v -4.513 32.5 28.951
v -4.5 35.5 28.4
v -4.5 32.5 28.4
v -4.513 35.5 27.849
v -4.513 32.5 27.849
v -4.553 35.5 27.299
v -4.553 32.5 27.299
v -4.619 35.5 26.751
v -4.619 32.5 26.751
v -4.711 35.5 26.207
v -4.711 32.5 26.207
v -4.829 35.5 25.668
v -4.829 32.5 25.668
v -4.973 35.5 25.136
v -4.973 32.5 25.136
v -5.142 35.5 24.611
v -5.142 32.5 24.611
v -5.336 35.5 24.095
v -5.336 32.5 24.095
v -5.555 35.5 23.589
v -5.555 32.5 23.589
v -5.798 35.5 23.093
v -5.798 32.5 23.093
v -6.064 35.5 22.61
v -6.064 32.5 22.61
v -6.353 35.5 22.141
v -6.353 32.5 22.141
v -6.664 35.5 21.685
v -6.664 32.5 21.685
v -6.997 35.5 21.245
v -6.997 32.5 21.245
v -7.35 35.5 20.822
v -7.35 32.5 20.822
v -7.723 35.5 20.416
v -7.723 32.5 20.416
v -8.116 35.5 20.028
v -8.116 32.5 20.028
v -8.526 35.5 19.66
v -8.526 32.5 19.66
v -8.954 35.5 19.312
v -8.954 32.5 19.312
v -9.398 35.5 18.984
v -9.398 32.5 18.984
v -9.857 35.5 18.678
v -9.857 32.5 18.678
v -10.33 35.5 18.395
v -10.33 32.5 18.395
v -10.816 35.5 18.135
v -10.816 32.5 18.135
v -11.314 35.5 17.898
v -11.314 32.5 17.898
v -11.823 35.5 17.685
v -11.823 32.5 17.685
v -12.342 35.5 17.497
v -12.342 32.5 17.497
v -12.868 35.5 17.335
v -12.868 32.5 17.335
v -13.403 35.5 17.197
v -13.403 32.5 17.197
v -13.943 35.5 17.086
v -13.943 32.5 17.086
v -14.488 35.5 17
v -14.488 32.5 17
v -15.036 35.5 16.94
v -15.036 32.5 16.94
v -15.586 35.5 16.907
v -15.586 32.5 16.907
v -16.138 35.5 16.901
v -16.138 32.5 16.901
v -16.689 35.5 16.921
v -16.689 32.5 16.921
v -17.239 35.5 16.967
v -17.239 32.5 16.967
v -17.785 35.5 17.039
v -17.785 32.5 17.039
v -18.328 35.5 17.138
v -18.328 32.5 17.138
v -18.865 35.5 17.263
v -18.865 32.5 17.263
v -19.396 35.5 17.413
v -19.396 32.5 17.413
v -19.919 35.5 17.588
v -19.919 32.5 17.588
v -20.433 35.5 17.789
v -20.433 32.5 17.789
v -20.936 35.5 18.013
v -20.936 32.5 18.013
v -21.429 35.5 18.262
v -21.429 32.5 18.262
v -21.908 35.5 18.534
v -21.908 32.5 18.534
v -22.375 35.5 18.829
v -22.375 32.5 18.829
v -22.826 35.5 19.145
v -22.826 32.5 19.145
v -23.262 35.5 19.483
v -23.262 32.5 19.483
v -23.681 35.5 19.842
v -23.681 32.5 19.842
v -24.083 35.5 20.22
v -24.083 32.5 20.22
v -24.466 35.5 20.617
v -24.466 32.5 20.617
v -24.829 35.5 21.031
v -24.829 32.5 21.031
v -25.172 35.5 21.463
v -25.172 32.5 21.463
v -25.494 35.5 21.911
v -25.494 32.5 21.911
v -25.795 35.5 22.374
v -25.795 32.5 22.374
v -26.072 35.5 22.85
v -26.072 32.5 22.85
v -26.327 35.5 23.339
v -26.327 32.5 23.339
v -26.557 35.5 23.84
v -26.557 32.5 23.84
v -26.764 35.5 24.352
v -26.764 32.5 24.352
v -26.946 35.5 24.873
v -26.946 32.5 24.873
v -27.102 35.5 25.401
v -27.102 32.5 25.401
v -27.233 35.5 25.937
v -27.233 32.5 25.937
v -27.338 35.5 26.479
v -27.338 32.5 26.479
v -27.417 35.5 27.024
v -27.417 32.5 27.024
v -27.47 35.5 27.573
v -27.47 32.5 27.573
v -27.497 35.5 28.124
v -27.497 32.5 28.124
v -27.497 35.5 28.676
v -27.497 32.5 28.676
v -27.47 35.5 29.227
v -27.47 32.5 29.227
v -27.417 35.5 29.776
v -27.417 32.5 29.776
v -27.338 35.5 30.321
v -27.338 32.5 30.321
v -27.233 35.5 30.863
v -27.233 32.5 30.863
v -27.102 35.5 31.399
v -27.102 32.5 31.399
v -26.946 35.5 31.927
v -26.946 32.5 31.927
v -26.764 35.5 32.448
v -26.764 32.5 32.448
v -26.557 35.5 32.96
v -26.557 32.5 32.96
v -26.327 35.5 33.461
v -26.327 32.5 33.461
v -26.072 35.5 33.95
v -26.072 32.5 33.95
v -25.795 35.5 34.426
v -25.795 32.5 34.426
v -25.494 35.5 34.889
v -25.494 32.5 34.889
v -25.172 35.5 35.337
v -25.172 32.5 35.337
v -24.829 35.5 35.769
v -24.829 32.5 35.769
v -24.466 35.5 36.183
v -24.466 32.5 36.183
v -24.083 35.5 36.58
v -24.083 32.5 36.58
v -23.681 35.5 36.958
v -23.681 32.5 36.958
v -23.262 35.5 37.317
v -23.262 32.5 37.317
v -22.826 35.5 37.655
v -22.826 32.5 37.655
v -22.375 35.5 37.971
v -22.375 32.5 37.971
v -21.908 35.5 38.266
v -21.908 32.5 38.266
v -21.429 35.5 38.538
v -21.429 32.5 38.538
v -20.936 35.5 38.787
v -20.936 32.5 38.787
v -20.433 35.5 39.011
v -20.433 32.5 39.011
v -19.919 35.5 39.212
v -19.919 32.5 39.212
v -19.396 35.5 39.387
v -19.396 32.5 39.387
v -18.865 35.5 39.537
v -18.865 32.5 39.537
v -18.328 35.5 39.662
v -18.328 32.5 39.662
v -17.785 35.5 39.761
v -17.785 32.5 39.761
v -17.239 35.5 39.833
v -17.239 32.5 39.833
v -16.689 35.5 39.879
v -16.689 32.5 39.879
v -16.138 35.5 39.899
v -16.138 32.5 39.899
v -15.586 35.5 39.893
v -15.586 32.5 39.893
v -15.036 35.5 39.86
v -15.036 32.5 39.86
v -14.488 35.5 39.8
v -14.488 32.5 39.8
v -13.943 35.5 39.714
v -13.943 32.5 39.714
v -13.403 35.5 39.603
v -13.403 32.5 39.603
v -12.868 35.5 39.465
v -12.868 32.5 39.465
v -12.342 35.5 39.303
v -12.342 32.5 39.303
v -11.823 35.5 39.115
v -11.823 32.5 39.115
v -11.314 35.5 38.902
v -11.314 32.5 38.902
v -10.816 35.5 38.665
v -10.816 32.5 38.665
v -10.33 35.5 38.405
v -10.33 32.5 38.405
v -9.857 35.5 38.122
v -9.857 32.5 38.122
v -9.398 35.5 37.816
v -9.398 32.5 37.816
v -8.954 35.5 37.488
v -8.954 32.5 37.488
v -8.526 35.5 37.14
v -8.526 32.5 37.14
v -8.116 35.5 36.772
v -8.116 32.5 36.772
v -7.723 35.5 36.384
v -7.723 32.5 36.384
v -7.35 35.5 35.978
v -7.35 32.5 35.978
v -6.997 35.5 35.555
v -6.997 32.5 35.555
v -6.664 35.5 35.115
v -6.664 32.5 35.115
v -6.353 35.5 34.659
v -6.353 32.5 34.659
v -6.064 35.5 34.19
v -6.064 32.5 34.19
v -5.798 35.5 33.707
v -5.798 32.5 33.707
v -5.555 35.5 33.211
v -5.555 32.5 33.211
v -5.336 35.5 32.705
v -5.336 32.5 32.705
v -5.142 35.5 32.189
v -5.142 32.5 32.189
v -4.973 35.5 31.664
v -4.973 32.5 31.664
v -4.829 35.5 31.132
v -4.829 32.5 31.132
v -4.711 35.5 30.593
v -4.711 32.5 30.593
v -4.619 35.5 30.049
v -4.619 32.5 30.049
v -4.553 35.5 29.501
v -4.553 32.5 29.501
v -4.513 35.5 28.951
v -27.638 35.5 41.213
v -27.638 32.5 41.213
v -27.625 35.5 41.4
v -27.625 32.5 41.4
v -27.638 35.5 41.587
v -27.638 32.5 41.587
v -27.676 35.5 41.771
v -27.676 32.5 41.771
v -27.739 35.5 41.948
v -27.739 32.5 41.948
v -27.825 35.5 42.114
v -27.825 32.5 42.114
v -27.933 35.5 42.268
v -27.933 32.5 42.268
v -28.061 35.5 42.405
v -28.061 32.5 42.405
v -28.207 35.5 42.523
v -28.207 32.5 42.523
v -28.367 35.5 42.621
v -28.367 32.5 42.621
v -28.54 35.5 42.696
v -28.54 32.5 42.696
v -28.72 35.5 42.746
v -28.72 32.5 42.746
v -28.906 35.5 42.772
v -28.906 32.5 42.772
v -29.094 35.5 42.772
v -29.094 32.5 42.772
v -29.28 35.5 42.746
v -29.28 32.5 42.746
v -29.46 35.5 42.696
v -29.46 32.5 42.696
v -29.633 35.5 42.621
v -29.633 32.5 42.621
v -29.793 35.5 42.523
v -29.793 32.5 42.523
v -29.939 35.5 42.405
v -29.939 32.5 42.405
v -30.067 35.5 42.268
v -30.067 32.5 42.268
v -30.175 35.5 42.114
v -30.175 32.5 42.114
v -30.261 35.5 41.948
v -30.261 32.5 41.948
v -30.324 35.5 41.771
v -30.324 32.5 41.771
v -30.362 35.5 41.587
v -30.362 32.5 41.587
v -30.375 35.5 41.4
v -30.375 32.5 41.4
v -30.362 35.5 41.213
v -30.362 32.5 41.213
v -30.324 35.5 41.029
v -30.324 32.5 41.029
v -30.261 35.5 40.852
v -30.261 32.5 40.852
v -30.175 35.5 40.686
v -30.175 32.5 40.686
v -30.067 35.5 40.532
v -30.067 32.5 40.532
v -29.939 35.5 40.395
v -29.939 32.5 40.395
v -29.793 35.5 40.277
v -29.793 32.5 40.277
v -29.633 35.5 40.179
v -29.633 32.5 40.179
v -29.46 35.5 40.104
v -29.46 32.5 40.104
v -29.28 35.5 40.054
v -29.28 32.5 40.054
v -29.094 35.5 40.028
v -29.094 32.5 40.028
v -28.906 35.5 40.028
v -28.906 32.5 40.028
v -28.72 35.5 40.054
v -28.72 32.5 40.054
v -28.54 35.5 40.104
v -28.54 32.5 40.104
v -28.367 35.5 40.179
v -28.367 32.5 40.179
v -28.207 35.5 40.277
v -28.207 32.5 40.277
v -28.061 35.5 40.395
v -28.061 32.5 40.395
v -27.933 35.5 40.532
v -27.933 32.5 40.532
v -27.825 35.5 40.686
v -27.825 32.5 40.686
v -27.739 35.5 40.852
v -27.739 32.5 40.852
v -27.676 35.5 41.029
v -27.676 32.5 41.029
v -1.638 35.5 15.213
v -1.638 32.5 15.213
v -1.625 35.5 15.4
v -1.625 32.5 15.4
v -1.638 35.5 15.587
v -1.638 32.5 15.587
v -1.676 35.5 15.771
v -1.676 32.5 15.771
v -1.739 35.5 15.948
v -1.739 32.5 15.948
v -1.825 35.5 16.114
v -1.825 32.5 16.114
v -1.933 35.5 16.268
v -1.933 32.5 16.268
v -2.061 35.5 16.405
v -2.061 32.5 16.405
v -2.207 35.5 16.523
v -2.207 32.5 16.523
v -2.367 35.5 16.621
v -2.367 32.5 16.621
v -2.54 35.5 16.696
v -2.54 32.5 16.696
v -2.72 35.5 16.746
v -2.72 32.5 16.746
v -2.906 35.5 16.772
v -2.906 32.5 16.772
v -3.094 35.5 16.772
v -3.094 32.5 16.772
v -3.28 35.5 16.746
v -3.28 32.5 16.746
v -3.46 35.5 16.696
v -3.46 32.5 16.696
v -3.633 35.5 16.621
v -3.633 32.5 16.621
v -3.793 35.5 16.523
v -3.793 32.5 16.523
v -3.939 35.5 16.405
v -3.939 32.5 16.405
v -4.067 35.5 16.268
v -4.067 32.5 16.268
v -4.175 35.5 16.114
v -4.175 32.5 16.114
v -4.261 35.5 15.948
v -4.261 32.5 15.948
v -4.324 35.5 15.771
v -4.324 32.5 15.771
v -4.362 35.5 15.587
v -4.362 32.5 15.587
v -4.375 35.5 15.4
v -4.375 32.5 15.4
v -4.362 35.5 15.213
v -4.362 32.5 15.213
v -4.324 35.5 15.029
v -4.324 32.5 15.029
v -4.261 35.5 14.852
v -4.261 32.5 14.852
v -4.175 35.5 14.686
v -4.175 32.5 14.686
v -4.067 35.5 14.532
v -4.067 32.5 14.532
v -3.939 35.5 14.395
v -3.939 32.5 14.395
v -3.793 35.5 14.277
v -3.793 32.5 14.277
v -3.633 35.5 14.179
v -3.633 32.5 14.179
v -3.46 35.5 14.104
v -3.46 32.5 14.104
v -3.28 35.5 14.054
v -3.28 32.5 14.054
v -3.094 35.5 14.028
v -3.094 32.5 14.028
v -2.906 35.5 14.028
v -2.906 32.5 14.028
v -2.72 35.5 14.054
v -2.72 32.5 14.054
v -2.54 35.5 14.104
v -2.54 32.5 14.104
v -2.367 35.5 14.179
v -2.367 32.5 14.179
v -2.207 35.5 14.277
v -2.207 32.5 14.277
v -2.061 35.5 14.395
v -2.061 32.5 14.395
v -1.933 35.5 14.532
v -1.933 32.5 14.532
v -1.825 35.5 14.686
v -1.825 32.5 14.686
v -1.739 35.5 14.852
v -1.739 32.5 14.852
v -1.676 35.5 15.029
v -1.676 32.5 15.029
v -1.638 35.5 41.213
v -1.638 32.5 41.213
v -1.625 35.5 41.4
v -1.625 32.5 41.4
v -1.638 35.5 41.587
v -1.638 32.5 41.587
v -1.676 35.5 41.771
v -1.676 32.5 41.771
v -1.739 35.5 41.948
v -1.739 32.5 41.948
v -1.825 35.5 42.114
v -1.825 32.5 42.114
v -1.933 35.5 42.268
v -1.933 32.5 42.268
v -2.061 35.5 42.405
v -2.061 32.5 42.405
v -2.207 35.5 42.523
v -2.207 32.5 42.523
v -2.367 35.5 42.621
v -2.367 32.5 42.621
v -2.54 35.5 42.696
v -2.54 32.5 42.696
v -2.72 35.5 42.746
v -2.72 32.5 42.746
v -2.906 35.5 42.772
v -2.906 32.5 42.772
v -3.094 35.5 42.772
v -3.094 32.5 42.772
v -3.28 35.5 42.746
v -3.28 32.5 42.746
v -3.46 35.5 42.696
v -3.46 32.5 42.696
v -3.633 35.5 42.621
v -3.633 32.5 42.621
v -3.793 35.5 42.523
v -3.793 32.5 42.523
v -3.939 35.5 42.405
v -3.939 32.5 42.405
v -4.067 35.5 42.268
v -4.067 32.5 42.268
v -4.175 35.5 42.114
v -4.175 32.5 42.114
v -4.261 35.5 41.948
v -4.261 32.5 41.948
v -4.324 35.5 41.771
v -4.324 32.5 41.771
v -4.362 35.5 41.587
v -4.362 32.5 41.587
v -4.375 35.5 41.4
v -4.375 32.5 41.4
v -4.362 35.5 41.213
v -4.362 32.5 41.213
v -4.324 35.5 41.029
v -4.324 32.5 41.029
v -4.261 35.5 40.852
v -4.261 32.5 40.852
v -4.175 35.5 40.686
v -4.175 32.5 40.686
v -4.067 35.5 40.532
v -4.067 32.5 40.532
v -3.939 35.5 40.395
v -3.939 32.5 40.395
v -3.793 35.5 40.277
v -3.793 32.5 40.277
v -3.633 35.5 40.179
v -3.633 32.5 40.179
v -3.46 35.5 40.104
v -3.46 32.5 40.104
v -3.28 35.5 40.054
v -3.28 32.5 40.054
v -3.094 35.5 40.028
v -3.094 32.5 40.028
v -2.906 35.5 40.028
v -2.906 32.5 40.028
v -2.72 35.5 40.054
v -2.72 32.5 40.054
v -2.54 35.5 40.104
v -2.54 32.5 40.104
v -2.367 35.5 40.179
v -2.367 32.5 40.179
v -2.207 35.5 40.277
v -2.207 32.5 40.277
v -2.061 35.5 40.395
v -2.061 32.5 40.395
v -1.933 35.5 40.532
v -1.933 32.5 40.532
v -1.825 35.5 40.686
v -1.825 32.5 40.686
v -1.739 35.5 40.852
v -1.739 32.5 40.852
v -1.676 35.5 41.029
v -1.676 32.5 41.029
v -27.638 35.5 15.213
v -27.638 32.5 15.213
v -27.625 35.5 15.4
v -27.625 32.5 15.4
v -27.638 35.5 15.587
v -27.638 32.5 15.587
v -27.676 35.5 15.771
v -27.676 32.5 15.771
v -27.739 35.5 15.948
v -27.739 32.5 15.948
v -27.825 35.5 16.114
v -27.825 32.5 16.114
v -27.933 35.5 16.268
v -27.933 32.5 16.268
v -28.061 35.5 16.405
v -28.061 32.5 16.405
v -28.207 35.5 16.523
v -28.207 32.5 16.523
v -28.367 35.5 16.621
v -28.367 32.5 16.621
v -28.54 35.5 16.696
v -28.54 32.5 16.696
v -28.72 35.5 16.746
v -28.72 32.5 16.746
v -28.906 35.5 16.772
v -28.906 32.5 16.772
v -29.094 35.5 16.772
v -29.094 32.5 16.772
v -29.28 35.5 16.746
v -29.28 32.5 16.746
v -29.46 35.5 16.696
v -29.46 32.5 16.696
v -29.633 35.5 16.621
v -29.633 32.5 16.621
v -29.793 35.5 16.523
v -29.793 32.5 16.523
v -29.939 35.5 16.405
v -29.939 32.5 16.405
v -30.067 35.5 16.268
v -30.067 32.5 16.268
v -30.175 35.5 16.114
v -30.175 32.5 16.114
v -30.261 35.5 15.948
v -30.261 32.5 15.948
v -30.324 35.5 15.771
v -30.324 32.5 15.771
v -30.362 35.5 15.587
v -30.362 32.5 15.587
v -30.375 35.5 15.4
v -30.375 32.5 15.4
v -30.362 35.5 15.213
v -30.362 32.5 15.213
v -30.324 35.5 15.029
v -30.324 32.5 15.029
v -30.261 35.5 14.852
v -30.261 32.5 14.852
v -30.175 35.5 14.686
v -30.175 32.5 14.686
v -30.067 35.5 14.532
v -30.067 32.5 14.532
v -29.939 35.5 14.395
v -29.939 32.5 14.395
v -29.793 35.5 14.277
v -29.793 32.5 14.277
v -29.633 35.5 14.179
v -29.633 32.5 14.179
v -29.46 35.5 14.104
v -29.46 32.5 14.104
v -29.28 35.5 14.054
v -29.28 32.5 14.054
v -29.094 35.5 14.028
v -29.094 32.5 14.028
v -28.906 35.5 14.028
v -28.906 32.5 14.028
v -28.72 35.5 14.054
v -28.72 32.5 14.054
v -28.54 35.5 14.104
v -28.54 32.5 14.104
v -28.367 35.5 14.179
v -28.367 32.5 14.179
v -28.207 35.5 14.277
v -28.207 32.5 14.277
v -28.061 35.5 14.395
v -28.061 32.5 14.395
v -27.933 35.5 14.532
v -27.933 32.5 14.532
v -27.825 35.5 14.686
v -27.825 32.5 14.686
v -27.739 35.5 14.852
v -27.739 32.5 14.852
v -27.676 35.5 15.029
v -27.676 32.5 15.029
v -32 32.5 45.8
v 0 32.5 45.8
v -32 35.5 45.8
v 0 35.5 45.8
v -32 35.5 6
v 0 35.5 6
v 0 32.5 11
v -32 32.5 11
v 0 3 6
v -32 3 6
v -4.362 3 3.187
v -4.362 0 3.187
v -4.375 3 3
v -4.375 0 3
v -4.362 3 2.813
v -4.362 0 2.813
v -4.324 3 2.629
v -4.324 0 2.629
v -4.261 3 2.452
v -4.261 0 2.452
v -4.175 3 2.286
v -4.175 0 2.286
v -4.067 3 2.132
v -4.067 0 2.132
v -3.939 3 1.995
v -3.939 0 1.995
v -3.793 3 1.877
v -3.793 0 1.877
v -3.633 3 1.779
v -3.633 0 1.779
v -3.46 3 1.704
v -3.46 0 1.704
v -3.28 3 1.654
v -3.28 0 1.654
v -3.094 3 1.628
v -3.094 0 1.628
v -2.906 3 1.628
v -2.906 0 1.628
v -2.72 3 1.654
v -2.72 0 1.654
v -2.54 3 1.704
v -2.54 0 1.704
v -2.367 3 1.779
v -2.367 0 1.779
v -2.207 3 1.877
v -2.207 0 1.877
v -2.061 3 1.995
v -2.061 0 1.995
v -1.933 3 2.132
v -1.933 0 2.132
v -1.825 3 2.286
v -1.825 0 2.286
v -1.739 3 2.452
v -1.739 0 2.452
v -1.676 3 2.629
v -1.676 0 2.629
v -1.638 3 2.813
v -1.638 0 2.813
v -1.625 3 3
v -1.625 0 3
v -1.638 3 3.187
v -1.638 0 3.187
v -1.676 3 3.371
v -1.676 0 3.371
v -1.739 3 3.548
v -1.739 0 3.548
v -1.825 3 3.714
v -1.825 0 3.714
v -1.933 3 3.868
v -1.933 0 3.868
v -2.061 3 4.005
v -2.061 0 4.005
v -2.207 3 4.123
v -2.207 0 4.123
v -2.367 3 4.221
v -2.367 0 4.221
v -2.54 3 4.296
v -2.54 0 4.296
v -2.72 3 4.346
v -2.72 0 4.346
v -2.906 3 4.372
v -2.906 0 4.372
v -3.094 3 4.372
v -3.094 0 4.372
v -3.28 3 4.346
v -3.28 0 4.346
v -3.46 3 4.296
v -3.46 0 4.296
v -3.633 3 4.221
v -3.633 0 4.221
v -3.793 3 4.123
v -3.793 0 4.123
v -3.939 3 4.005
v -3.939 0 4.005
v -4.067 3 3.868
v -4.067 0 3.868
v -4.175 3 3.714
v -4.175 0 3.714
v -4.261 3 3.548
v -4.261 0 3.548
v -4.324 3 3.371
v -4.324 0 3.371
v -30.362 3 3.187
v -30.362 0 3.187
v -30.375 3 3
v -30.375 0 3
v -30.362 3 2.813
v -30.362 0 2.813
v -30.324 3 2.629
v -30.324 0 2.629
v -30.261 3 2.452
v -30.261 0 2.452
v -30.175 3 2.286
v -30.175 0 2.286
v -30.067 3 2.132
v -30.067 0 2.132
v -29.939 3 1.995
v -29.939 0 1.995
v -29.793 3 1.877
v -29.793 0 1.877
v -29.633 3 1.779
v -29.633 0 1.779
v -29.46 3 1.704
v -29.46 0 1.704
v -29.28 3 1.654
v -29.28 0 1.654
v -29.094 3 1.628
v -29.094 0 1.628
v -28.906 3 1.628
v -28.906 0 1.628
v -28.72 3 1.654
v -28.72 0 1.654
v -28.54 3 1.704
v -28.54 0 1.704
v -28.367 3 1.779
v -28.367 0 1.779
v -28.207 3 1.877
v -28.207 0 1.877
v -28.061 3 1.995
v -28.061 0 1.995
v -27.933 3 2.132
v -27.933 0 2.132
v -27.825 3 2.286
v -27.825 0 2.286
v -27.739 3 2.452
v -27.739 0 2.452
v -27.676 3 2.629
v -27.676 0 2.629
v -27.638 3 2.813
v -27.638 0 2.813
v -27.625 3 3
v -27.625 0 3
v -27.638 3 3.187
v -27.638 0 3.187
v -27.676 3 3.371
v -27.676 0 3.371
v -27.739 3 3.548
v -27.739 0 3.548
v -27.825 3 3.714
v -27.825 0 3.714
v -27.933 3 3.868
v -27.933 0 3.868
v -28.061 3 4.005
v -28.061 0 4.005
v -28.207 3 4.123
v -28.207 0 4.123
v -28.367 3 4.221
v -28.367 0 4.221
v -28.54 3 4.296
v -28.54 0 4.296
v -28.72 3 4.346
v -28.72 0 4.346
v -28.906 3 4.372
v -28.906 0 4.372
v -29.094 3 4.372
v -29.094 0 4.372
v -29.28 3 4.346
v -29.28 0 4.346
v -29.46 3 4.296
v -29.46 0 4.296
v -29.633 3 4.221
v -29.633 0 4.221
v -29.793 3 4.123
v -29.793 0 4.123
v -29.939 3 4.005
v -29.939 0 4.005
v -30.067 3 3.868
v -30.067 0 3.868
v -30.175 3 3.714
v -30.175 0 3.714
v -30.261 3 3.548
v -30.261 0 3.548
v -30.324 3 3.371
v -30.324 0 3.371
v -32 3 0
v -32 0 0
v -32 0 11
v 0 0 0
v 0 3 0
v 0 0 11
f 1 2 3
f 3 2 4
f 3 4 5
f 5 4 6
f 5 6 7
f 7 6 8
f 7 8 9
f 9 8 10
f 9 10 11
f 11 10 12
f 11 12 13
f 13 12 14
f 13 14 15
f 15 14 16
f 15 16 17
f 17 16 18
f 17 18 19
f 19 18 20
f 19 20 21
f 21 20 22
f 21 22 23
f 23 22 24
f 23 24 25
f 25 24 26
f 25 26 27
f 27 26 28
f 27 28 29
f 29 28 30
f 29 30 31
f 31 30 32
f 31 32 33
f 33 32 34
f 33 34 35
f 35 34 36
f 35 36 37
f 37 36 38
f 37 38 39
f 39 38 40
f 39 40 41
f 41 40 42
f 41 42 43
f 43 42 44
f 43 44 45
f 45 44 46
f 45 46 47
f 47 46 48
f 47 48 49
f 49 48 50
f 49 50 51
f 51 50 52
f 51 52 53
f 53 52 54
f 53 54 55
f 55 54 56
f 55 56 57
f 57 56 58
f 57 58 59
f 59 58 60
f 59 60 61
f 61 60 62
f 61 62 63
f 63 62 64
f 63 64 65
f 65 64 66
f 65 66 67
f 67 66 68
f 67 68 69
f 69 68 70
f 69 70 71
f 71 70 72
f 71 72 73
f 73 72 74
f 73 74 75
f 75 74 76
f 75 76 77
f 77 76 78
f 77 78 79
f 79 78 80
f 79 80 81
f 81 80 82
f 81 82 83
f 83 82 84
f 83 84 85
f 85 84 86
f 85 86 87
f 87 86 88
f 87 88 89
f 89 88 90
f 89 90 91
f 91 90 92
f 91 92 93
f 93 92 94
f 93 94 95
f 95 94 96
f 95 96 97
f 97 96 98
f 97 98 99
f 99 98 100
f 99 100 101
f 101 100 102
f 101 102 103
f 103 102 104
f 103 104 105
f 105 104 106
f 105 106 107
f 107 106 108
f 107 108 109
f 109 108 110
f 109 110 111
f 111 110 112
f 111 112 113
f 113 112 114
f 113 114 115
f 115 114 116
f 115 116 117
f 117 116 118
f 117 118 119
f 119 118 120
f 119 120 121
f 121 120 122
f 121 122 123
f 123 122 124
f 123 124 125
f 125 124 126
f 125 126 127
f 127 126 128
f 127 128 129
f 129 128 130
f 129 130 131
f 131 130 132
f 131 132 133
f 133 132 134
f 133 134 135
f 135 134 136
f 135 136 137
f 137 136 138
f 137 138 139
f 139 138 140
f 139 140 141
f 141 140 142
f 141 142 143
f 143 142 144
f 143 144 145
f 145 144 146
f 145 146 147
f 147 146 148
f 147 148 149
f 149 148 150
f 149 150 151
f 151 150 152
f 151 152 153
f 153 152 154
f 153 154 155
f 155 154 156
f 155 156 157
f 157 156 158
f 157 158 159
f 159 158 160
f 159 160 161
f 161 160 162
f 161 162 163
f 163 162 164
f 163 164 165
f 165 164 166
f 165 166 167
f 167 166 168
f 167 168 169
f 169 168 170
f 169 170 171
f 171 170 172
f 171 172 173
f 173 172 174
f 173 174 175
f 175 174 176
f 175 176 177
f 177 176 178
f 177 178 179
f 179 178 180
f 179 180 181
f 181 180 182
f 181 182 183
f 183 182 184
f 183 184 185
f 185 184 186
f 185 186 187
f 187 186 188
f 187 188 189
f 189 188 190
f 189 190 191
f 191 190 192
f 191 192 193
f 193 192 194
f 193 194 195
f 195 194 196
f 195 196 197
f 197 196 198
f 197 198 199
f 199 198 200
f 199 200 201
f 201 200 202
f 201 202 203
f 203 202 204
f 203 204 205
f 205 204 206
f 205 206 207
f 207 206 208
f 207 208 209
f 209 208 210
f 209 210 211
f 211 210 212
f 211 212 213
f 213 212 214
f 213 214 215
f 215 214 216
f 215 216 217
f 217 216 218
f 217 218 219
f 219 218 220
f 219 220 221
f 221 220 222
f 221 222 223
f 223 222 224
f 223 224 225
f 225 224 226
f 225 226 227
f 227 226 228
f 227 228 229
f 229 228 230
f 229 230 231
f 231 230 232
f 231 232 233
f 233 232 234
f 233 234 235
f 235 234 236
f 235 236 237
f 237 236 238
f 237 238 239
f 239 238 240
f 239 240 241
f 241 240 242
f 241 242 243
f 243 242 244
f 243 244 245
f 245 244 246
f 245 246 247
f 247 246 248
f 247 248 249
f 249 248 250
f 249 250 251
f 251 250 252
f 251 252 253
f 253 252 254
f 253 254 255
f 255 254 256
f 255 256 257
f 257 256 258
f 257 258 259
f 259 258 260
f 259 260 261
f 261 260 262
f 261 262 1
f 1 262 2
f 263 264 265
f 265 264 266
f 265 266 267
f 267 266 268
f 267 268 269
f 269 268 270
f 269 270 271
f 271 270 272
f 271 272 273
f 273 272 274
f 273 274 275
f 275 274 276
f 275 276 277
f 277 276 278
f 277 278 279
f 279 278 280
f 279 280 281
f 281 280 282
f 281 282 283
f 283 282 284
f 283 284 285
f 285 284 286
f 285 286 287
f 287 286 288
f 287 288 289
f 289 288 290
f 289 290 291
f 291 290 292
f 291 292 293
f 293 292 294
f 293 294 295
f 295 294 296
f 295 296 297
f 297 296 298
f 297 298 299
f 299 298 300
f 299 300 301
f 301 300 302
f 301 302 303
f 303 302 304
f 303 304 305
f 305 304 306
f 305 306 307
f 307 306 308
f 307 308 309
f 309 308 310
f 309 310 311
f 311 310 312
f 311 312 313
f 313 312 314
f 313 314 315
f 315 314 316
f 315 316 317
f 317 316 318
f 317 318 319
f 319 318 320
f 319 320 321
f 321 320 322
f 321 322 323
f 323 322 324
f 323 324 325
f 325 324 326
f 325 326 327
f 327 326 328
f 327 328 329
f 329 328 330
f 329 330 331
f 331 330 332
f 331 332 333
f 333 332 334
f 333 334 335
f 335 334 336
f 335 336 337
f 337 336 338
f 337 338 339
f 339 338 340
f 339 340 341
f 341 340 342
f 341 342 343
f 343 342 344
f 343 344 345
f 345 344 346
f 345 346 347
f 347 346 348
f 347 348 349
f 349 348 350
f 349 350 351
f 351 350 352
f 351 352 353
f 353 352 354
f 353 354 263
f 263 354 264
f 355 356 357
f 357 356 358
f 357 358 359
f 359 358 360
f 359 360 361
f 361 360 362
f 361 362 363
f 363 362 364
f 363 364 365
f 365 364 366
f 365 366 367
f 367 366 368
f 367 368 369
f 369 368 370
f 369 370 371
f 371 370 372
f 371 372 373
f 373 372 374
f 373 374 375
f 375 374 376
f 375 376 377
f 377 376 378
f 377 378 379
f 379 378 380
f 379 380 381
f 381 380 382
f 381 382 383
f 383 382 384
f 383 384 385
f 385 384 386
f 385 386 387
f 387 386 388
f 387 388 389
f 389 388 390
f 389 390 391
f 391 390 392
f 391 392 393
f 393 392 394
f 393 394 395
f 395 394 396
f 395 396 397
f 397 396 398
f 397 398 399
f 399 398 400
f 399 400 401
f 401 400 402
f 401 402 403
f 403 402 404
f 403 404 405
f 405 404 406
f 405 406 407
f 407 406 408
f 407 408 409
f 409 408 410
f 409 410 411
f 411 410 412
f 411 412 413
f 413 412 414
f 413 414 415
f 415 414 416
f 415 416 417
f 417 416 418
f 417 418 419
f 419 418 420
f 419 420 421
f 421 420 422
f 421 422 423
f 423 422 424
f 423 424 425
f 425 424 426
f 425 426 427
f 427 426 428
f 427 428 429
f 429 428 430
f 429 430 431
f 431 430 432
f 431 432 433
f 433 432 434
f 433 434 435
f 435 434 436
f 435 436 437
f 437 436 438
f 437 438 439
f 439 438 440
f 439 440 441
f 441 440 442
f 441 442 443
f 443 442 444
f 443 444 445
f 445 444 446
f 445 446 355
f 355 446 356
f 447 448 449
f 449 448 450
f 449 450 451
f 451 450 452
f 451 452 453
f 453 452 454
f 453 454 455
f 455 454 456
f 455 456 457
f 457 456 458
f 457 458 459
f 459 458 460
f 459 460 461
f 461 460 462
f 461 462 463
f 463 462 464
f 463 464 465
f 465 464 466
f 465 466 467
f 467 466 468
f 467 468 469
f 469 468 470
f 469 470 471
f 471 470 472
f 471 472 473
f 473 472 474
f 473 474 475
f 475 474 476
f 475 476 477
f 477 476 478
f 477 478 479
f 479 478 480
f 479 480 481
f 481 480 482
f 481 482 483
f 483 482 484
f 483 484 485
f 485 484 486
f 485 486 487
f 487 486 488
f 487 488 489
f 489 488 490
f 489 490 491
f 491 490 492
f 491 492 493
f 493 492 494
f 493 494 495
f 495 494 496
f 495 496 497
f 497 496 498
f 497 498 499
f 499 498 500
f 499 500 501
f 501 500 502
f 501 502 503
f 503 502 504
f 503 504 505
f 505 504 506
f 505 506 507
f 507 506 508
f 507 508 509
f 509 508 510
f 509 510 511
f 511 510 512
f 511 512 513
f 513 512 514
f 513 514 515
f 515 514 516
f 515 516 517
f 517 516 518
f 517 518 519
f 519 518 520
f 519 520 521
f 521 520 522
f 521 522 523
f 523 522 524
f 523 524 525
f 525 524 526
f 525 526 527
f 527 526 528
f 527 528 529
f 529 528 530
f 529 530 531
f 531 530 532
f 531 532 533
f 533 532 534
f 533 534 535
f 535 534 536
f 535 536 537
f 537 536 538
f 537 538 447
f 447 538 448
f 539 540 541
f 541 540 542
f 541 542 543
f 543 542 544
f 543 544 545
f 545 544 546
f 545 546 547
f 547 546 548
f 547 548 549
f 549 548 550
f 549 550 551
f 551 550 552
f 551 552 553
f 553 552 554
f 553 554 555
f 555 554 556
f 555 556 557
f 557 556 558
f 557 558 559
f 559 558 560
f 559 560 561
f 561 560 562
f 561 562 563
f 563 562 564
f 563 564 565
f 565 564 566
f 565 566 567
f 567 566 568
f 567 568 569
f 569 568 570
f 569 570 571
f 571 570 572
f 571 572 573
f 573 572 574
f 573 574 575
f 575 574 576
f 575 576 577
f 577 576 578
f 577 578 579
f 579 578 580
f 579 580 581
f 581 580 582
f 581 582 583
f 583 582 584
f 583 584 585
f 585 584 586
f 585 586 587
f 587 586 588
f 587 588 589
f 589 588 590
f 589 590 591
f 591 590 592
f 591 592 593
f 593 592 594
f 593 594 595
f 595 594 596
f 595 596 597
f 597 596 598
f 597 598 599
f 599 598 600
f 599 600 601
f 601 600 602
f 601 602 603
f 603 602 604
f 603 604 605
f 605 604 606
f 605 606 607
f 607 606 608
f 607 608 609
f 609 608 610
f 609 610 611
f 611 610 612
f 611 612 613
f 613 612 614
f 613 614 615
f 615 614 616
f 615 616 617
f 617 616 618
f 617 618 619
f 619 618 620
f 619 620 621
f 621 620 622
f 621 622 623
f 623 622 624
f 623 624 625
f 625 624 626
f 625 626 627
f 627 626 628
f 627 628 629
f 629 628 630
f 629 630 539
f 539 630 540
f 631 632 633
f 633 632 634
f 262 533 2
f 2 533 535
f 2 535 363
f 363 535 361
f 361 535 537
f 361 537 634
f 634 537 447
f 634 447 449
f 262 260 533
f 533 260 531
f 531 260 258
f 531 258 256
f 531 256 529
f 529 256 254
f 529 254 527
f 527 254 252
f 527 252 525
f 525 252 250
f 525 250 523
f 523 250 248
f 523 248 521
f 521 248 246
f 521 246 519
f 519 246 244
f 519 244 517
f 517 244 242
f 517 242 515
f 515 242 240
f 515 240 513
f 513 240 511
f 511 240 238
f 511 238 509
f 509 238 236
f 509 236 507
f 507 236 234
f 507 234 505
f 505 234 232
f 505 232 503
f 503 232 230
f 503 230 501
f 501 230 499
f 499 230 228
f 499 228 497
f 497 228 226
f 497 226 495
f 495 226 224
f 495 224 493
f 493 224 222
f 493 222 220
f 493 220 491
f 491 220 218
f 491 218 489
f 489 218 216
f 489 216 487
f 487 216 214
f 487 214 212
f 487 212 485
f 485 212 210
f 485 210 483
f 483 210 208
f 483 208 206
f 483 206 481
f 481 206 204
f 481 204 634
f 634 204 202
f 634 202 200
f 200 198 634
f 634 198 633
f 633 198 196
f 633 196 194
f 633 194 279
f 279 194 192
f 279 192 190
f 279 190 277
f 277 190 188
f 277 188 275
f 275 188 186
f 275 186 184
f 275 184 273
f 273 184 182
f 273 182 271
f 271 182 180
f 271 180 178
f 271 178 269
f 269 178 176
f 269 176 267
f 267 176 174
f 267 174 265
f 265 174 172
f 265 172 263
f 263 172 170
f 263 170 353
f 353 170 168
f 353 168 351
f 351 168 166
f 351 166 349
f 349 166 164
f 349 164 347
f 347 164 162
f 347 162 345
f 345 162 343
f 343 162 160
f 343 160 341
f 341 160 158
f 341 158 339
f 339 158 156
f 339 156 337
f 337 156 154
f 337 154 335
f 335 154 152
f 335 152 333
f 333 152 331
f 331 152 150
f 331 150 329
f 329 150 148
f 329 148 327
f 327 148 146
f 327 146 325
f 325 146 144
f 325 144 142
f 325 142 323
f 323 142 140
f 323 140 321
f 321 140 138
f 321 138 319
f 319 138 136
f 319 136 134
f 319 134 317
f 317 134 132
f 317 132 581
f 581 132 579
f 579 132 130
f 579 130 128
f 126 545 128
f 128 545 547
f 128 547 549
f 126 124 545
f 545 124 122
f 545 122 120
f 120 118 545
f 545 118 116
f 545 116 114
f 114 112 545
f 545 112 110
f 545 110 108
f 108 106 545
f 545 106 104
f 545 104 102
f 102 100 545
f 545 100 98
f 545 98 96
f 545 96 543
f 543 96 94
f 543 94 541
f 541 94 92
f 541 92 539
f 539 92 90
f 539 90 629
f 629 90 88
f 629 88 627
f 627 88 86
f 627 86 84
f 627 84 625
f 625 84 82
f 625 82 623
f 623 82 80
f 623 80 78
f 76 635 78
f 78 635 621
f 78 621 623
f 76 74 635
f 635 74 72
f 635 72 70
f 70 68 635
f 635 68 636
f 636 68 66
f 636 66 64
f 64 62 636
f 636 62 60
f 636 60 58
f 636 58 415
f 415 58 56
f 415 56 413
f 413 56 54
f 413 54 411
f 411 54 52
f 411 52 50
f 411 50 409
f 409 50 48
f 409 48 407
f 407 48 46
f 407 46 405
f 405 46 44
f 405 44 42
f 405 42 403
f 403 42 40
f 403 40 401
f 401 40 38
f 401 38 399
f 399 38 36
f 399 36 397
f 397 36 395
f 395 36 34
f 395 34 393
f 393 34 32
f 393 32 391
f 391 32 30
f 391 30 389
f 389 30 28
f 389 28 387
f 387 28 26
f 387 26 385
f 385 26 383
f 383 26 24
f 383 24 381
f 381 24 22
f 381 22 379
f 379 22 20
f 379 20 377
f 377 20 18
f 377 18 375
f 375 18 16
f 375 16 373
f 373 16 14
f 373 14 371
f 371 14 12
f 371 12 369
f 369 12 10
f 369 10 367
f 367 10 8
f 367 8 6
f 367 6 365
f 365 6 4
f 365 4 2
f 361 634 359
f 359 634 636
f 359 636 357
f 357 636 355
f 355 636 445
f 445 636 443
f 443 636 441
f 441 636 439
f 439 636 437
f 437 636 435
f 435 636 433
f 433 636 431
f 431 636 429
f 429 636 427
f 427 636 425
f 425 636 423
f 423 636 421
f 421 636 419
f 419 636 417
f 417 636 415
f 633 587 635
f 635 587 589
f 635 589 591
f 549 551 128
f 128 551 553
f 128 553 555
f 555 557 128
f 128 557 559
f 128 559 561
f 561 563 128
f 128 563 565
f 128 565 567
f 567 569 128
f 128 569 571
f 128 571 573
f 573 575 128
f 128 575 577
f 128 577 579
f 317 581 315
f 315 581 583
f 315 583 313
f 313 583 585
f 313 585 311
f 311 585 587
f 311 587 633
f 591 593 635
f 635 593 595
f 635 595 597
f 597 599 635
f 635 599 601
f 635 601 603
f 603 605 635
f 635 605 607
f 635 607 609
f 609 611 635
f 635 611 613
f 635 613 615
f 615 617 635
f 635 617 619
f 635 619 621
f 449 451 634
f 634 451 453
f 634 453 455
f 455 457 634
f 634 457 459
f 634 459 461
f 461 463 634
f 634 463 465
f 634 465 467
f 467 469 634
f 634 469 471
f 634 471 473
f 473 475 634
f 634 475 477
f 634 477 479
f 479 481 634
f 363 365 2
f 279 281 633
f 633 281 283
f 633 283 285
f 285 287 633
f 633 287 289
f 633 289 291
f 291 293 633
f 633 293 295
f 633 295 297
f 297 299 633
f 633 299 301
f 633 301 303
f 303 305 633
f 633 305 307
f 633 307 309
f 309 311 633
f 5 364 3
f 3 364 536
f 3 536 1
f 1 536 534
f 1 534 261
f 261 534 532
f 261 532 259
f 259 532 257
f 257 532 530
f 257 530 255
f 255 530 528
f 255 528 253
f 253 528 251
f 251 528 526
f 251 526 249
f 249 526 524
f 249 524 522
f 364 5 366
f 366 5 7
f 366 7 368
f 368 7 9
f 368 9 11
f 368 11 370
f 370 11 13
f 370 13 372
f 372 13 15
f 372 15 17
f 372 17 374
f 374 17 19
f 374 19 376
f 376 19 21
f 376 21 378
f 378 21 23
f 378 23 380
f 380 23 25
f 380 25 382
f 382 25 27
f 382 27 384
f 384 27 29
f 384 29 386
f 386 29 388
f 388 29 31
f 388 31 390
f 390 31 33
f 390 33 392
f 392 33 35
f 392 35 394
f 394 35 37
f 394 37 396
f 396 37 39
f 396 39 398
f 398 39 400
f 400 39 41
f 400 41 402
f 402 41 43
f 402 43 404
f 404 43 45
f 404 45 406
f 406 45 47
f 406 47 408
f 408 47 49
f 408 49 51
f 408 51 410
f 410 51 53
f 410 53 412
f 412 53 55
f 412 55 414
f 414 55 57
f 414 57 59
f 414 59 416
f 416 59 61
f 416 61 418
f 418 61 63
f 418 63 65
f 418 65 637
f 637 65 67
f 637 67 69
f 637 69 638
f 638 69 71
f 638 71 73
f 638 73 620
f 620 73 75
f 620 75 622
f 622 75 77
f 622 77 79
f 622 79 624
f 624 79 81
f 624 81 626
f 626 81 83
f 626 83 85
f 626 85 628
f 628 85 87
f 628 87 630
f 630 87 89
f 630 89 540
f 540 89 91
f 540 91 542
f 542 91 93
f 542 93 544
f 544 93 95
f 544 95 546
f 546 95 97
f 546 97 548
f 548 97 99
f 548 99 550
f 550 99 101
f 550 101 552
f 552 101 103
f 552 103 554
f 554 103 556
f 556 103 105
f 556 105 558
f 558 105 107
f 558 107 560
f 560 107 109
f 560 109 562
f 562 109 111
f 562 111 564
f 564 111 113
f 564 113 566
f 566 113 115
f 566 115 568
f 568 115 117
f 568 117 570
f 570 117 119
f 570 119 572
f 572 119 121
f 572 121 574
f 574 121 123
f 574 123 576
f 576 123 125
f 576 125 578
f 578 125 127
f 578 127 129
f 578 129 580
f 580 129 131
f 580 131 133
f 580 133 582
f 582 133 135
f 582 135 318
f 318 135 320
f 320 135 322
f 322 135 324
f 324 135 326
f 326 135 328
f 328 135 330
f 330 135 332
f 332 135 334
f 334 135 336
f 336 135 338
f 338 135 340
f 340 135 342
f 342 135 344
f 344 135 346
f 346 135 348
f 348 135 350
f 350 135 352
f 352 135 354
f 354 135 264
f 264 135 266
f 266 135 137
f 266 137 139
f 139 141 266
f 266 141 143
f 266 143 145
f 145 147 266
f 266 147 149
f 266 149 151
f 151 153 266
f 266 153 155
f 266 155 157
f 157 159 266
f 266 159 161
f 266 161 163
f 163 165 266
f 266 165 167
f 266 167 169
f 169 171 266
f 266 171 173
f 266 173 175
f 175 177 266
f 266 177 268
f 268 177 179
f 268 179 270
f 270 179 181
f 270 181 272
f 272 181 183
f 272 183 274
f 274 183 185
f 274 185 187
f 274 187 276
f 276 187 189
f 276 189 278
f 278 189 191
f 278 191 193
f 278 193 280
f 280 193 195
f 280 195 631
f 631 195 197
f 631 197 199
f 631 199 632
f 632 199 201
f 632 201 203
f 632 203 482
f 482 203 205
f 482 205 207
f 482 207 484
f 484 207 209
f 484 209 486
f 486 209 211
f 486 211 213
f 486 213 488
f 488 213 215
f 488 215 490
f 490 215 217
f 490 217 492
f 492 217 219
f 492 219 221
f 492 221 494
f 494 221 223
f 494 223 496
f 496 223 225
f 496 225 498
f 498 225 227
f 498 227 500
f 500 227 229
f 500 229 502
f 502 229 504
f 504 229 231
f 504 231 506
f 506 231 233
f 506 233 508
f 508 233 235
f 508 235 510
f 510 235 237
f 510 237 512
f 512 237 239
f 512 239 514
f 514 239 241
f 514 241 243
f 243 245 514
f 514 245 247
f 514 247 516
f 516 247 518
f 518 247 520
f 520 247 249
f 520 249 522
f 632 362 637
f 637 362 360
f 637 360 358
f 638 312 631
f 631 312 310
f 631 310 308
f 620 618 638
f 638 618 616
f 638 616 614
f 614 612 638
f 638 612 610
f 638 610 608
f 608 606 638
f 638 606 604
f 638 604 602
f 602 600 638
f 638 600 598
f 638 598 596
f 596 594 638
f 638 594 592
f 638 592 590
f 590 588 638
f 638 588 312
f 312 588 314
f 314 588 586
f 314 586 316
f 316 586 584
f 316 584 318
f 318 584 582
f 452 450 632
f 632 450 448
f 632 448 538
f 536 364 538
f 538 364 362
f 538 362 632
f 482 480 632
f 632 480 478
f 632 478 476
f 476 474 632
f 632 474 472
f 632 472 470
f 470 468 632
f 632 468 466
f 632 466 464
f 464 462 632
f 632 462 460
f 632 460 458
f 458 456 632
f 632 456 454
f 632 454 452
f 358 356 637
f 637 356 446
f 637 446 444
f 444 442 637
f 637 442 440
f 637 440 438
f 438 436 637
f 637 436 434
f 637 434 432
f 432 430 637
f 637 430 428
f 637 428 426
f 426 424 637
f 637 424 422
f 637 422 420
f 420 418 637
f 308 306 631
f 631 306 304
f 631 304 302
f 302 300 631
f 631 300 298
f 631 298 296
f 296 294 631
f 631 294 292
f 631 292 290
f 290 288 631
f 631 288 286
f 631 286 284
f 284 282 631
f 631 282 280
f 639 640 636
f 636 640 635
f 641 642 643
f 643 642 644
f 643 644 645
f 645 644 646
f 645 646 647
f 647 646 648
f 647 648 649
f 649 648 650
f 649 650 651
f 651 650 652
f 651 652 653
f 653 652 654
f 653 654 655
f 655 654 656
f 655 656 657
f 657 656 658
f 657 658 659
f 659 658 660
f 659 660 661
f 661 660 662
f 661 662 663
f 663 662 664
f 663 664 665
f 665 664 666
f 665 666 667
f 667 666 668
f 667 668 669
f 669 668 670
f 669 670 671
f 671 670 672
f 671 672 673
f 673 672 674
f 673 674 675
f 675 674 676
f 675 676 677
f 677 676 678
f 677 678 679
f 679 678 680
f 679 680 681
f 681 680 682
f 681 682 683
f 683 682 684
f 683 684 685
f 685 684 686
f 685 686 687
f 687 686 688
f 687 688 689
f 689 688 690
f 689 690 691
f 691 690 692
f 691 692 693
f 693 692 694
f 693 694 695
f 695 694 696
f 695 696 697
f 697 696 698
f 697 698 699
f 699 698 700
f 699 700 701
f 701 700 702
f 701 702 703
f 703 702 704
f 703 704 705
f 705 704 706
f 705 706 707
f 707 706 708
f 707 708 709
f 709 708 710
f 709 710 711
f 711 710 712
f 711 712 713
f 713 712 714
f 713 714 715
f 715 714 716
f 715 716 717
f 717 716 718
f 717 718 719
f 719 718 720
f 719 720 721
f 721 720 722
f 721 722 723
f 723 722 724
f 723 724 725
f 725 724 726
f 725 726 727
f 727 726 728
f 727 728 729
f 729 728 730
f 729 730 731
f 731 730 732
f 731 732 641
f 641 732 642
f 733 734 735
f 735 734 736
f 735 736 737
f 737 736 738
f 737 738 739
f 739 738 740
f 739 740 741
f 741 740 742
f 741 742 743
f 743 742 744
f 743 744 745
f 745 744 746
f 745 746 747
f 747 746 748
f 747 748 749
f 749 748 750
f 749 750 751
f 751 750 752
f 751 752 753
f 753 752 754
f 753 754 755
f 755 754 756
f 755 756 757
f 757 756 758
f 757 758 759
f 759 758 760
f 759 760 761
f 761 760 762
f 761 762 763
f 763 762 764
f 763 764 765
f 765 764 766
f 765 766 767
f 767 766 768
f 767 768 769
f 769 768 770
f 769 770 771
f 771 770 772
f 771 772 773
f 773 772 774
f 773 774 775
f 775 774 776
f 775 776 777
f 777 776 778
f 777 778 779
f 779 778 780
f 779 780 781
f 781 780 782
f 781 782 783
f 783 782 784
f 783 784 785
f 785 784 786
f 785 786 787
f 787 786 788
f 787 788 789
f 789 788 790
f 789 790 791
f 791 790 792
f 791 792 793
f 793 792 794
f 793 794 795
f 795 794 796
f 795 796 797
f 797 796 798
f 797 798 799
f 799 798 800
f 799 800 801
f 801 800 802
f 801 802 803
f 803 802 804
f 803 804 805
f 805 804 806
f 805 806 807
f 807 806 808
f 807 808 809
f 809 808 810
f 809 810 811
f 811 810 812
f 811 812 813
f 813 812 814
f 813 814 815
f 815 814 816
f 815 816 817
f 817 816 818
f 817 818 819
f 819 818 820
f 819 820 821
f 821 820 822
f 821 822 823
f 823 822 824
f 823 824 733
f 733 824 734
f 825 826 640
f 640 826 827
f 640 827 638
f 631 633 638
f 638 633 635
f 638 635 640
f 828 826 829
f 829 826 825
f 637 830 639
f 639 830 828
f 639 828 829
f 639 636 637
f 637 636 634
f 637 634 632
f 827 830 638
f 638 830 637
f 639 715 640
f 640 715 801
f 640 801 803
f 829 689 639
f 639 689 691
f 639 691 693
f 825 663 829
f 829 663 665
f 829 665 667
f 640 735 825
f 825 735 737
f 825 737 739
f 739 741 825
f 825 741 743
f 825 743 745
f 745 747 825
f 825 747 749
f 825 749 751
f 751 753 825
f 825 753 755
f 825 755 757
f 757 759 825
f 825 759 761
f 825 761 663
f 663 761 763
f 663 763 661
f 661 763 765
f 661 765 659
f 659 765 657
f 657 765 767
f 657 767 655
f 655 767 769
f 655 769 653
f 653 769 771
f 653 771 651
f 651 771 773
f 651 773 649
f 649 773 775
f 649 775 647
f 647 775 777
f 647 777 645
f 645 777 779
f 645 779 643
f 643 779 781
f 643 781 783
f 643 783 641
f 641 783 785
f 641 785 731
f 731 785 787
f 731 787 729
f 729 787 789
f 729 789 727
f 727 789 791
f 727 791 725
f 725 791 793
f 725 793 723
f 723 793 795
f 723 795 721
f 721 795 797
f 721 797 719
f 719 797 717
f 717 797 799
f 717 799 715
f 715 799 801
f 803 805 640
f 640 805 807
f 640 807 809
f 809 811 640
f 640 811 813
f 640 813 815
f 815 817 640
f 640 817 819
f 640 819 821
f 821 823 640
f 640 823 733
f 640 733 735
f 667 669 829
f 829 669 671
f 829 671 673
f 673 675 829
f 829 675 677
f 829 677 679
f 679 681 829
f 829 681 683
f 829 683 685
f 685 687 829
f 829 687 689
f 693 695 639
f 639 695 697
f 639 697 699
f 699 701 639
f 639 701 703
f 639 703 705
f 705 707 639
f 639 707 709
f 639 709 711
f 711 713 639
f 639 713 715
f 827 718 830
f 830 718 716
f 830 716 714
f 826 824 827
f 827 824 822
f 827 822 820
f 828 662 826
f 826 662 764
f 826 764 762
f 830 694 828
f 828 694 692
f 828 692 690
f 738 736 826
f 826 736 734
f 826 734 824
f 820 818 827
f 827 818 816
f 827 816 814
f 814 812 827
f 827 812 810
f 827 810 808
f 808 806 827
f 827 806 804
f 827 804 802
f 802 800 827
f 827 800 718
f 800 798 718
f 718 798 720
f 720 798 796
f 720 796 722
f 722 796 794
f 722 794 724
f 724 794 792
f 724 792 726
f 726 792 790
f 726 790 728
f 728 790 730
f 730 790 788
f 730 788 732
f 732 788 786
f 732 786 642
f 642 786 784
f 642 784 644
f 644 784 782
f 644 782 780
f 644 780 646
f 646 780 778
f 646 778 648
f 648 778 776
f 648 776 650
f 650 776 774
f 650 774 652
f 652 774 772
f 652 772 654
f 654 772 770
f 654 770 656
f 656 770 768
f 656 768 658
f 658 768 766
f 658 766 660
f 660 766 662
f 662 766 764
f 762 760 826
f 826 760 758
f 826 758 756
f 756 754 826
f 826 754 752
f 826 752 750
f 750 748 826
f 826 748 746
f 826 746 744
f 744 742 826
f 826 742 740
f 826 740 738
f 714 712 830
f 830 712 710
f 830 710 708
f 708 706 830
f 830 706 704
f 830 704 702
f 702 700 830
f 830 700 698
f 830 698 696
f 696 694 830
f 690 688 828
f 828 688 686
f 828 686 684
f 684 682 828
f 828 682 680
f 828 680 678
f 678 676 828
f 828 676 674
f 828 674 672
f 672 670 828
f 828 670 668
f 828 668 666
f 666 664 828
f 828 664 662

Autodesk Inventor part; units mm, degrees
ref_plane "YZ Plane" through (0, 0, 0) normal (1, 0, 0) x (0, 1, 0)
ref_plane "XZ Plane" through (0, 0, 0) normal (0, 1, 0) x (-1, 0, 0)
ref_plane "XY Plane" through (0, 0, 0) normal (0, 0, 1) x (1, 0, 0)
sketch "Sketch1" plane through (0, 0, 0) normal (0, 1, 0) x (-1, 0, 0)
  line L0 (0, 0) -> (32, 0)
  line L1 (16, 0) -> (29, 0)
  circle A0 centre (29, 3) radius 1.375
  line L2 (16, 0) -> (16, 4.375)
  circle A1 centre (3, 3) radius 1.375
  line L3 (0, 0) -> (0, 6)
  line L4 (0, 6) -> (0, 11)
  line L5 (0, 11) -> (32, 11)
  line L6 (32, 11) -> (32, 0)
  dimension "d3" = 2.75
  dimension "d4" = 6
  dimension "d5" = 5
extrude "Extrusion1" add sketch "Sketch1" along normal blind 3
sketch "Sketch2" plane through (0, 3, 0) normal (0, 1, 0) x (1, 0, 0)
  line L0 (-32, -11) -> (0, -11) projected
  line L1 (0, -11) -> (0, 0) projected
  line L2 (-32, -11) -> (0, -11)
  line L3 (0, -11) -> (0, -6)
  line L4 (0, -6) -> (-32, -6)
  line L5 (-32, -6) -> (-32, -11)
  dimension "d8" = 5
extrude "Extrusion2" add sketch "Sketch2" along normal blind 29.5
sketch "Sketch3" plane through (0, 32.5, 0) normal (0, 1, 0) x (1, 0, 0)
  circle A0 centre (-3, -3) radius 1.375 projected
  line L0 (-3, -3) -> (-3, -11)
  line L1 (-32, -11) -> (0, -11) projected
  line L2 (-3, -11) -> (-3, -15.4)
  circle A1 centre (-29, -3) radius 1.375 projected
  line L3 (-29, -3) -> (-29, -11)
  line L4 (-29, -11) -> (-29, -15.4)
  circle A2 centre (-29, -15.4) radius 1.375
  circle A3 centre (-3, -15.4) radius 1.375
  line L5 (-3, -15.4) -> (-3, -41.4)
  circle A4 centre (-3, -41.4) radius 1.375
  circle A5 centre (-29, -41.4) radius 1.375
  line L6 (0, -6) -> (-32, -6) projected
  line L7 (-32, -6) -> (0, -6)
  line L8 (0, -6) -> (0, -45.8)
  line L9 (0, -45.8) -> (-32, -45.8)
  line L10 (-32, -45.8) -> (-32, -6)
  point P0 (0, 0)
  dimension "d11" = 4.4
  dimension "d12" = 2.75
  dimension "d13" = 26
  dimension "d14" = 39.8
extrude "Extrusion3" add sketch "Sketch3" along normal blind 3 contours L6 L8 L1 L0 | L0 L1 L3 L6 | L1 L8 L9 L10 | L3 L1 L10 L6
sketch "Sketch4" plane through (0, 35.5, 0) normal (0, 1, 0) x (1, 0, 0)
  circle A0 centre (-3, -15.4) radius 1.375 projected
  circle A1 centre (-29, -41.4) radius 1.375 projected
  circle A2 centre (-29, -15.4) radius 1.375 projected
  circle A3 centre (-3, -41.4) radius 1.375 projected
  circle A4 centre (-16, -28.4) radius 11.5
  point P0 (0, 0)
  dimension "d17" = 23
extrude "Extrusion4" cut sketch "Sketch4" against normal blind 3 contours A4
properties part number "Motor_Mount"
